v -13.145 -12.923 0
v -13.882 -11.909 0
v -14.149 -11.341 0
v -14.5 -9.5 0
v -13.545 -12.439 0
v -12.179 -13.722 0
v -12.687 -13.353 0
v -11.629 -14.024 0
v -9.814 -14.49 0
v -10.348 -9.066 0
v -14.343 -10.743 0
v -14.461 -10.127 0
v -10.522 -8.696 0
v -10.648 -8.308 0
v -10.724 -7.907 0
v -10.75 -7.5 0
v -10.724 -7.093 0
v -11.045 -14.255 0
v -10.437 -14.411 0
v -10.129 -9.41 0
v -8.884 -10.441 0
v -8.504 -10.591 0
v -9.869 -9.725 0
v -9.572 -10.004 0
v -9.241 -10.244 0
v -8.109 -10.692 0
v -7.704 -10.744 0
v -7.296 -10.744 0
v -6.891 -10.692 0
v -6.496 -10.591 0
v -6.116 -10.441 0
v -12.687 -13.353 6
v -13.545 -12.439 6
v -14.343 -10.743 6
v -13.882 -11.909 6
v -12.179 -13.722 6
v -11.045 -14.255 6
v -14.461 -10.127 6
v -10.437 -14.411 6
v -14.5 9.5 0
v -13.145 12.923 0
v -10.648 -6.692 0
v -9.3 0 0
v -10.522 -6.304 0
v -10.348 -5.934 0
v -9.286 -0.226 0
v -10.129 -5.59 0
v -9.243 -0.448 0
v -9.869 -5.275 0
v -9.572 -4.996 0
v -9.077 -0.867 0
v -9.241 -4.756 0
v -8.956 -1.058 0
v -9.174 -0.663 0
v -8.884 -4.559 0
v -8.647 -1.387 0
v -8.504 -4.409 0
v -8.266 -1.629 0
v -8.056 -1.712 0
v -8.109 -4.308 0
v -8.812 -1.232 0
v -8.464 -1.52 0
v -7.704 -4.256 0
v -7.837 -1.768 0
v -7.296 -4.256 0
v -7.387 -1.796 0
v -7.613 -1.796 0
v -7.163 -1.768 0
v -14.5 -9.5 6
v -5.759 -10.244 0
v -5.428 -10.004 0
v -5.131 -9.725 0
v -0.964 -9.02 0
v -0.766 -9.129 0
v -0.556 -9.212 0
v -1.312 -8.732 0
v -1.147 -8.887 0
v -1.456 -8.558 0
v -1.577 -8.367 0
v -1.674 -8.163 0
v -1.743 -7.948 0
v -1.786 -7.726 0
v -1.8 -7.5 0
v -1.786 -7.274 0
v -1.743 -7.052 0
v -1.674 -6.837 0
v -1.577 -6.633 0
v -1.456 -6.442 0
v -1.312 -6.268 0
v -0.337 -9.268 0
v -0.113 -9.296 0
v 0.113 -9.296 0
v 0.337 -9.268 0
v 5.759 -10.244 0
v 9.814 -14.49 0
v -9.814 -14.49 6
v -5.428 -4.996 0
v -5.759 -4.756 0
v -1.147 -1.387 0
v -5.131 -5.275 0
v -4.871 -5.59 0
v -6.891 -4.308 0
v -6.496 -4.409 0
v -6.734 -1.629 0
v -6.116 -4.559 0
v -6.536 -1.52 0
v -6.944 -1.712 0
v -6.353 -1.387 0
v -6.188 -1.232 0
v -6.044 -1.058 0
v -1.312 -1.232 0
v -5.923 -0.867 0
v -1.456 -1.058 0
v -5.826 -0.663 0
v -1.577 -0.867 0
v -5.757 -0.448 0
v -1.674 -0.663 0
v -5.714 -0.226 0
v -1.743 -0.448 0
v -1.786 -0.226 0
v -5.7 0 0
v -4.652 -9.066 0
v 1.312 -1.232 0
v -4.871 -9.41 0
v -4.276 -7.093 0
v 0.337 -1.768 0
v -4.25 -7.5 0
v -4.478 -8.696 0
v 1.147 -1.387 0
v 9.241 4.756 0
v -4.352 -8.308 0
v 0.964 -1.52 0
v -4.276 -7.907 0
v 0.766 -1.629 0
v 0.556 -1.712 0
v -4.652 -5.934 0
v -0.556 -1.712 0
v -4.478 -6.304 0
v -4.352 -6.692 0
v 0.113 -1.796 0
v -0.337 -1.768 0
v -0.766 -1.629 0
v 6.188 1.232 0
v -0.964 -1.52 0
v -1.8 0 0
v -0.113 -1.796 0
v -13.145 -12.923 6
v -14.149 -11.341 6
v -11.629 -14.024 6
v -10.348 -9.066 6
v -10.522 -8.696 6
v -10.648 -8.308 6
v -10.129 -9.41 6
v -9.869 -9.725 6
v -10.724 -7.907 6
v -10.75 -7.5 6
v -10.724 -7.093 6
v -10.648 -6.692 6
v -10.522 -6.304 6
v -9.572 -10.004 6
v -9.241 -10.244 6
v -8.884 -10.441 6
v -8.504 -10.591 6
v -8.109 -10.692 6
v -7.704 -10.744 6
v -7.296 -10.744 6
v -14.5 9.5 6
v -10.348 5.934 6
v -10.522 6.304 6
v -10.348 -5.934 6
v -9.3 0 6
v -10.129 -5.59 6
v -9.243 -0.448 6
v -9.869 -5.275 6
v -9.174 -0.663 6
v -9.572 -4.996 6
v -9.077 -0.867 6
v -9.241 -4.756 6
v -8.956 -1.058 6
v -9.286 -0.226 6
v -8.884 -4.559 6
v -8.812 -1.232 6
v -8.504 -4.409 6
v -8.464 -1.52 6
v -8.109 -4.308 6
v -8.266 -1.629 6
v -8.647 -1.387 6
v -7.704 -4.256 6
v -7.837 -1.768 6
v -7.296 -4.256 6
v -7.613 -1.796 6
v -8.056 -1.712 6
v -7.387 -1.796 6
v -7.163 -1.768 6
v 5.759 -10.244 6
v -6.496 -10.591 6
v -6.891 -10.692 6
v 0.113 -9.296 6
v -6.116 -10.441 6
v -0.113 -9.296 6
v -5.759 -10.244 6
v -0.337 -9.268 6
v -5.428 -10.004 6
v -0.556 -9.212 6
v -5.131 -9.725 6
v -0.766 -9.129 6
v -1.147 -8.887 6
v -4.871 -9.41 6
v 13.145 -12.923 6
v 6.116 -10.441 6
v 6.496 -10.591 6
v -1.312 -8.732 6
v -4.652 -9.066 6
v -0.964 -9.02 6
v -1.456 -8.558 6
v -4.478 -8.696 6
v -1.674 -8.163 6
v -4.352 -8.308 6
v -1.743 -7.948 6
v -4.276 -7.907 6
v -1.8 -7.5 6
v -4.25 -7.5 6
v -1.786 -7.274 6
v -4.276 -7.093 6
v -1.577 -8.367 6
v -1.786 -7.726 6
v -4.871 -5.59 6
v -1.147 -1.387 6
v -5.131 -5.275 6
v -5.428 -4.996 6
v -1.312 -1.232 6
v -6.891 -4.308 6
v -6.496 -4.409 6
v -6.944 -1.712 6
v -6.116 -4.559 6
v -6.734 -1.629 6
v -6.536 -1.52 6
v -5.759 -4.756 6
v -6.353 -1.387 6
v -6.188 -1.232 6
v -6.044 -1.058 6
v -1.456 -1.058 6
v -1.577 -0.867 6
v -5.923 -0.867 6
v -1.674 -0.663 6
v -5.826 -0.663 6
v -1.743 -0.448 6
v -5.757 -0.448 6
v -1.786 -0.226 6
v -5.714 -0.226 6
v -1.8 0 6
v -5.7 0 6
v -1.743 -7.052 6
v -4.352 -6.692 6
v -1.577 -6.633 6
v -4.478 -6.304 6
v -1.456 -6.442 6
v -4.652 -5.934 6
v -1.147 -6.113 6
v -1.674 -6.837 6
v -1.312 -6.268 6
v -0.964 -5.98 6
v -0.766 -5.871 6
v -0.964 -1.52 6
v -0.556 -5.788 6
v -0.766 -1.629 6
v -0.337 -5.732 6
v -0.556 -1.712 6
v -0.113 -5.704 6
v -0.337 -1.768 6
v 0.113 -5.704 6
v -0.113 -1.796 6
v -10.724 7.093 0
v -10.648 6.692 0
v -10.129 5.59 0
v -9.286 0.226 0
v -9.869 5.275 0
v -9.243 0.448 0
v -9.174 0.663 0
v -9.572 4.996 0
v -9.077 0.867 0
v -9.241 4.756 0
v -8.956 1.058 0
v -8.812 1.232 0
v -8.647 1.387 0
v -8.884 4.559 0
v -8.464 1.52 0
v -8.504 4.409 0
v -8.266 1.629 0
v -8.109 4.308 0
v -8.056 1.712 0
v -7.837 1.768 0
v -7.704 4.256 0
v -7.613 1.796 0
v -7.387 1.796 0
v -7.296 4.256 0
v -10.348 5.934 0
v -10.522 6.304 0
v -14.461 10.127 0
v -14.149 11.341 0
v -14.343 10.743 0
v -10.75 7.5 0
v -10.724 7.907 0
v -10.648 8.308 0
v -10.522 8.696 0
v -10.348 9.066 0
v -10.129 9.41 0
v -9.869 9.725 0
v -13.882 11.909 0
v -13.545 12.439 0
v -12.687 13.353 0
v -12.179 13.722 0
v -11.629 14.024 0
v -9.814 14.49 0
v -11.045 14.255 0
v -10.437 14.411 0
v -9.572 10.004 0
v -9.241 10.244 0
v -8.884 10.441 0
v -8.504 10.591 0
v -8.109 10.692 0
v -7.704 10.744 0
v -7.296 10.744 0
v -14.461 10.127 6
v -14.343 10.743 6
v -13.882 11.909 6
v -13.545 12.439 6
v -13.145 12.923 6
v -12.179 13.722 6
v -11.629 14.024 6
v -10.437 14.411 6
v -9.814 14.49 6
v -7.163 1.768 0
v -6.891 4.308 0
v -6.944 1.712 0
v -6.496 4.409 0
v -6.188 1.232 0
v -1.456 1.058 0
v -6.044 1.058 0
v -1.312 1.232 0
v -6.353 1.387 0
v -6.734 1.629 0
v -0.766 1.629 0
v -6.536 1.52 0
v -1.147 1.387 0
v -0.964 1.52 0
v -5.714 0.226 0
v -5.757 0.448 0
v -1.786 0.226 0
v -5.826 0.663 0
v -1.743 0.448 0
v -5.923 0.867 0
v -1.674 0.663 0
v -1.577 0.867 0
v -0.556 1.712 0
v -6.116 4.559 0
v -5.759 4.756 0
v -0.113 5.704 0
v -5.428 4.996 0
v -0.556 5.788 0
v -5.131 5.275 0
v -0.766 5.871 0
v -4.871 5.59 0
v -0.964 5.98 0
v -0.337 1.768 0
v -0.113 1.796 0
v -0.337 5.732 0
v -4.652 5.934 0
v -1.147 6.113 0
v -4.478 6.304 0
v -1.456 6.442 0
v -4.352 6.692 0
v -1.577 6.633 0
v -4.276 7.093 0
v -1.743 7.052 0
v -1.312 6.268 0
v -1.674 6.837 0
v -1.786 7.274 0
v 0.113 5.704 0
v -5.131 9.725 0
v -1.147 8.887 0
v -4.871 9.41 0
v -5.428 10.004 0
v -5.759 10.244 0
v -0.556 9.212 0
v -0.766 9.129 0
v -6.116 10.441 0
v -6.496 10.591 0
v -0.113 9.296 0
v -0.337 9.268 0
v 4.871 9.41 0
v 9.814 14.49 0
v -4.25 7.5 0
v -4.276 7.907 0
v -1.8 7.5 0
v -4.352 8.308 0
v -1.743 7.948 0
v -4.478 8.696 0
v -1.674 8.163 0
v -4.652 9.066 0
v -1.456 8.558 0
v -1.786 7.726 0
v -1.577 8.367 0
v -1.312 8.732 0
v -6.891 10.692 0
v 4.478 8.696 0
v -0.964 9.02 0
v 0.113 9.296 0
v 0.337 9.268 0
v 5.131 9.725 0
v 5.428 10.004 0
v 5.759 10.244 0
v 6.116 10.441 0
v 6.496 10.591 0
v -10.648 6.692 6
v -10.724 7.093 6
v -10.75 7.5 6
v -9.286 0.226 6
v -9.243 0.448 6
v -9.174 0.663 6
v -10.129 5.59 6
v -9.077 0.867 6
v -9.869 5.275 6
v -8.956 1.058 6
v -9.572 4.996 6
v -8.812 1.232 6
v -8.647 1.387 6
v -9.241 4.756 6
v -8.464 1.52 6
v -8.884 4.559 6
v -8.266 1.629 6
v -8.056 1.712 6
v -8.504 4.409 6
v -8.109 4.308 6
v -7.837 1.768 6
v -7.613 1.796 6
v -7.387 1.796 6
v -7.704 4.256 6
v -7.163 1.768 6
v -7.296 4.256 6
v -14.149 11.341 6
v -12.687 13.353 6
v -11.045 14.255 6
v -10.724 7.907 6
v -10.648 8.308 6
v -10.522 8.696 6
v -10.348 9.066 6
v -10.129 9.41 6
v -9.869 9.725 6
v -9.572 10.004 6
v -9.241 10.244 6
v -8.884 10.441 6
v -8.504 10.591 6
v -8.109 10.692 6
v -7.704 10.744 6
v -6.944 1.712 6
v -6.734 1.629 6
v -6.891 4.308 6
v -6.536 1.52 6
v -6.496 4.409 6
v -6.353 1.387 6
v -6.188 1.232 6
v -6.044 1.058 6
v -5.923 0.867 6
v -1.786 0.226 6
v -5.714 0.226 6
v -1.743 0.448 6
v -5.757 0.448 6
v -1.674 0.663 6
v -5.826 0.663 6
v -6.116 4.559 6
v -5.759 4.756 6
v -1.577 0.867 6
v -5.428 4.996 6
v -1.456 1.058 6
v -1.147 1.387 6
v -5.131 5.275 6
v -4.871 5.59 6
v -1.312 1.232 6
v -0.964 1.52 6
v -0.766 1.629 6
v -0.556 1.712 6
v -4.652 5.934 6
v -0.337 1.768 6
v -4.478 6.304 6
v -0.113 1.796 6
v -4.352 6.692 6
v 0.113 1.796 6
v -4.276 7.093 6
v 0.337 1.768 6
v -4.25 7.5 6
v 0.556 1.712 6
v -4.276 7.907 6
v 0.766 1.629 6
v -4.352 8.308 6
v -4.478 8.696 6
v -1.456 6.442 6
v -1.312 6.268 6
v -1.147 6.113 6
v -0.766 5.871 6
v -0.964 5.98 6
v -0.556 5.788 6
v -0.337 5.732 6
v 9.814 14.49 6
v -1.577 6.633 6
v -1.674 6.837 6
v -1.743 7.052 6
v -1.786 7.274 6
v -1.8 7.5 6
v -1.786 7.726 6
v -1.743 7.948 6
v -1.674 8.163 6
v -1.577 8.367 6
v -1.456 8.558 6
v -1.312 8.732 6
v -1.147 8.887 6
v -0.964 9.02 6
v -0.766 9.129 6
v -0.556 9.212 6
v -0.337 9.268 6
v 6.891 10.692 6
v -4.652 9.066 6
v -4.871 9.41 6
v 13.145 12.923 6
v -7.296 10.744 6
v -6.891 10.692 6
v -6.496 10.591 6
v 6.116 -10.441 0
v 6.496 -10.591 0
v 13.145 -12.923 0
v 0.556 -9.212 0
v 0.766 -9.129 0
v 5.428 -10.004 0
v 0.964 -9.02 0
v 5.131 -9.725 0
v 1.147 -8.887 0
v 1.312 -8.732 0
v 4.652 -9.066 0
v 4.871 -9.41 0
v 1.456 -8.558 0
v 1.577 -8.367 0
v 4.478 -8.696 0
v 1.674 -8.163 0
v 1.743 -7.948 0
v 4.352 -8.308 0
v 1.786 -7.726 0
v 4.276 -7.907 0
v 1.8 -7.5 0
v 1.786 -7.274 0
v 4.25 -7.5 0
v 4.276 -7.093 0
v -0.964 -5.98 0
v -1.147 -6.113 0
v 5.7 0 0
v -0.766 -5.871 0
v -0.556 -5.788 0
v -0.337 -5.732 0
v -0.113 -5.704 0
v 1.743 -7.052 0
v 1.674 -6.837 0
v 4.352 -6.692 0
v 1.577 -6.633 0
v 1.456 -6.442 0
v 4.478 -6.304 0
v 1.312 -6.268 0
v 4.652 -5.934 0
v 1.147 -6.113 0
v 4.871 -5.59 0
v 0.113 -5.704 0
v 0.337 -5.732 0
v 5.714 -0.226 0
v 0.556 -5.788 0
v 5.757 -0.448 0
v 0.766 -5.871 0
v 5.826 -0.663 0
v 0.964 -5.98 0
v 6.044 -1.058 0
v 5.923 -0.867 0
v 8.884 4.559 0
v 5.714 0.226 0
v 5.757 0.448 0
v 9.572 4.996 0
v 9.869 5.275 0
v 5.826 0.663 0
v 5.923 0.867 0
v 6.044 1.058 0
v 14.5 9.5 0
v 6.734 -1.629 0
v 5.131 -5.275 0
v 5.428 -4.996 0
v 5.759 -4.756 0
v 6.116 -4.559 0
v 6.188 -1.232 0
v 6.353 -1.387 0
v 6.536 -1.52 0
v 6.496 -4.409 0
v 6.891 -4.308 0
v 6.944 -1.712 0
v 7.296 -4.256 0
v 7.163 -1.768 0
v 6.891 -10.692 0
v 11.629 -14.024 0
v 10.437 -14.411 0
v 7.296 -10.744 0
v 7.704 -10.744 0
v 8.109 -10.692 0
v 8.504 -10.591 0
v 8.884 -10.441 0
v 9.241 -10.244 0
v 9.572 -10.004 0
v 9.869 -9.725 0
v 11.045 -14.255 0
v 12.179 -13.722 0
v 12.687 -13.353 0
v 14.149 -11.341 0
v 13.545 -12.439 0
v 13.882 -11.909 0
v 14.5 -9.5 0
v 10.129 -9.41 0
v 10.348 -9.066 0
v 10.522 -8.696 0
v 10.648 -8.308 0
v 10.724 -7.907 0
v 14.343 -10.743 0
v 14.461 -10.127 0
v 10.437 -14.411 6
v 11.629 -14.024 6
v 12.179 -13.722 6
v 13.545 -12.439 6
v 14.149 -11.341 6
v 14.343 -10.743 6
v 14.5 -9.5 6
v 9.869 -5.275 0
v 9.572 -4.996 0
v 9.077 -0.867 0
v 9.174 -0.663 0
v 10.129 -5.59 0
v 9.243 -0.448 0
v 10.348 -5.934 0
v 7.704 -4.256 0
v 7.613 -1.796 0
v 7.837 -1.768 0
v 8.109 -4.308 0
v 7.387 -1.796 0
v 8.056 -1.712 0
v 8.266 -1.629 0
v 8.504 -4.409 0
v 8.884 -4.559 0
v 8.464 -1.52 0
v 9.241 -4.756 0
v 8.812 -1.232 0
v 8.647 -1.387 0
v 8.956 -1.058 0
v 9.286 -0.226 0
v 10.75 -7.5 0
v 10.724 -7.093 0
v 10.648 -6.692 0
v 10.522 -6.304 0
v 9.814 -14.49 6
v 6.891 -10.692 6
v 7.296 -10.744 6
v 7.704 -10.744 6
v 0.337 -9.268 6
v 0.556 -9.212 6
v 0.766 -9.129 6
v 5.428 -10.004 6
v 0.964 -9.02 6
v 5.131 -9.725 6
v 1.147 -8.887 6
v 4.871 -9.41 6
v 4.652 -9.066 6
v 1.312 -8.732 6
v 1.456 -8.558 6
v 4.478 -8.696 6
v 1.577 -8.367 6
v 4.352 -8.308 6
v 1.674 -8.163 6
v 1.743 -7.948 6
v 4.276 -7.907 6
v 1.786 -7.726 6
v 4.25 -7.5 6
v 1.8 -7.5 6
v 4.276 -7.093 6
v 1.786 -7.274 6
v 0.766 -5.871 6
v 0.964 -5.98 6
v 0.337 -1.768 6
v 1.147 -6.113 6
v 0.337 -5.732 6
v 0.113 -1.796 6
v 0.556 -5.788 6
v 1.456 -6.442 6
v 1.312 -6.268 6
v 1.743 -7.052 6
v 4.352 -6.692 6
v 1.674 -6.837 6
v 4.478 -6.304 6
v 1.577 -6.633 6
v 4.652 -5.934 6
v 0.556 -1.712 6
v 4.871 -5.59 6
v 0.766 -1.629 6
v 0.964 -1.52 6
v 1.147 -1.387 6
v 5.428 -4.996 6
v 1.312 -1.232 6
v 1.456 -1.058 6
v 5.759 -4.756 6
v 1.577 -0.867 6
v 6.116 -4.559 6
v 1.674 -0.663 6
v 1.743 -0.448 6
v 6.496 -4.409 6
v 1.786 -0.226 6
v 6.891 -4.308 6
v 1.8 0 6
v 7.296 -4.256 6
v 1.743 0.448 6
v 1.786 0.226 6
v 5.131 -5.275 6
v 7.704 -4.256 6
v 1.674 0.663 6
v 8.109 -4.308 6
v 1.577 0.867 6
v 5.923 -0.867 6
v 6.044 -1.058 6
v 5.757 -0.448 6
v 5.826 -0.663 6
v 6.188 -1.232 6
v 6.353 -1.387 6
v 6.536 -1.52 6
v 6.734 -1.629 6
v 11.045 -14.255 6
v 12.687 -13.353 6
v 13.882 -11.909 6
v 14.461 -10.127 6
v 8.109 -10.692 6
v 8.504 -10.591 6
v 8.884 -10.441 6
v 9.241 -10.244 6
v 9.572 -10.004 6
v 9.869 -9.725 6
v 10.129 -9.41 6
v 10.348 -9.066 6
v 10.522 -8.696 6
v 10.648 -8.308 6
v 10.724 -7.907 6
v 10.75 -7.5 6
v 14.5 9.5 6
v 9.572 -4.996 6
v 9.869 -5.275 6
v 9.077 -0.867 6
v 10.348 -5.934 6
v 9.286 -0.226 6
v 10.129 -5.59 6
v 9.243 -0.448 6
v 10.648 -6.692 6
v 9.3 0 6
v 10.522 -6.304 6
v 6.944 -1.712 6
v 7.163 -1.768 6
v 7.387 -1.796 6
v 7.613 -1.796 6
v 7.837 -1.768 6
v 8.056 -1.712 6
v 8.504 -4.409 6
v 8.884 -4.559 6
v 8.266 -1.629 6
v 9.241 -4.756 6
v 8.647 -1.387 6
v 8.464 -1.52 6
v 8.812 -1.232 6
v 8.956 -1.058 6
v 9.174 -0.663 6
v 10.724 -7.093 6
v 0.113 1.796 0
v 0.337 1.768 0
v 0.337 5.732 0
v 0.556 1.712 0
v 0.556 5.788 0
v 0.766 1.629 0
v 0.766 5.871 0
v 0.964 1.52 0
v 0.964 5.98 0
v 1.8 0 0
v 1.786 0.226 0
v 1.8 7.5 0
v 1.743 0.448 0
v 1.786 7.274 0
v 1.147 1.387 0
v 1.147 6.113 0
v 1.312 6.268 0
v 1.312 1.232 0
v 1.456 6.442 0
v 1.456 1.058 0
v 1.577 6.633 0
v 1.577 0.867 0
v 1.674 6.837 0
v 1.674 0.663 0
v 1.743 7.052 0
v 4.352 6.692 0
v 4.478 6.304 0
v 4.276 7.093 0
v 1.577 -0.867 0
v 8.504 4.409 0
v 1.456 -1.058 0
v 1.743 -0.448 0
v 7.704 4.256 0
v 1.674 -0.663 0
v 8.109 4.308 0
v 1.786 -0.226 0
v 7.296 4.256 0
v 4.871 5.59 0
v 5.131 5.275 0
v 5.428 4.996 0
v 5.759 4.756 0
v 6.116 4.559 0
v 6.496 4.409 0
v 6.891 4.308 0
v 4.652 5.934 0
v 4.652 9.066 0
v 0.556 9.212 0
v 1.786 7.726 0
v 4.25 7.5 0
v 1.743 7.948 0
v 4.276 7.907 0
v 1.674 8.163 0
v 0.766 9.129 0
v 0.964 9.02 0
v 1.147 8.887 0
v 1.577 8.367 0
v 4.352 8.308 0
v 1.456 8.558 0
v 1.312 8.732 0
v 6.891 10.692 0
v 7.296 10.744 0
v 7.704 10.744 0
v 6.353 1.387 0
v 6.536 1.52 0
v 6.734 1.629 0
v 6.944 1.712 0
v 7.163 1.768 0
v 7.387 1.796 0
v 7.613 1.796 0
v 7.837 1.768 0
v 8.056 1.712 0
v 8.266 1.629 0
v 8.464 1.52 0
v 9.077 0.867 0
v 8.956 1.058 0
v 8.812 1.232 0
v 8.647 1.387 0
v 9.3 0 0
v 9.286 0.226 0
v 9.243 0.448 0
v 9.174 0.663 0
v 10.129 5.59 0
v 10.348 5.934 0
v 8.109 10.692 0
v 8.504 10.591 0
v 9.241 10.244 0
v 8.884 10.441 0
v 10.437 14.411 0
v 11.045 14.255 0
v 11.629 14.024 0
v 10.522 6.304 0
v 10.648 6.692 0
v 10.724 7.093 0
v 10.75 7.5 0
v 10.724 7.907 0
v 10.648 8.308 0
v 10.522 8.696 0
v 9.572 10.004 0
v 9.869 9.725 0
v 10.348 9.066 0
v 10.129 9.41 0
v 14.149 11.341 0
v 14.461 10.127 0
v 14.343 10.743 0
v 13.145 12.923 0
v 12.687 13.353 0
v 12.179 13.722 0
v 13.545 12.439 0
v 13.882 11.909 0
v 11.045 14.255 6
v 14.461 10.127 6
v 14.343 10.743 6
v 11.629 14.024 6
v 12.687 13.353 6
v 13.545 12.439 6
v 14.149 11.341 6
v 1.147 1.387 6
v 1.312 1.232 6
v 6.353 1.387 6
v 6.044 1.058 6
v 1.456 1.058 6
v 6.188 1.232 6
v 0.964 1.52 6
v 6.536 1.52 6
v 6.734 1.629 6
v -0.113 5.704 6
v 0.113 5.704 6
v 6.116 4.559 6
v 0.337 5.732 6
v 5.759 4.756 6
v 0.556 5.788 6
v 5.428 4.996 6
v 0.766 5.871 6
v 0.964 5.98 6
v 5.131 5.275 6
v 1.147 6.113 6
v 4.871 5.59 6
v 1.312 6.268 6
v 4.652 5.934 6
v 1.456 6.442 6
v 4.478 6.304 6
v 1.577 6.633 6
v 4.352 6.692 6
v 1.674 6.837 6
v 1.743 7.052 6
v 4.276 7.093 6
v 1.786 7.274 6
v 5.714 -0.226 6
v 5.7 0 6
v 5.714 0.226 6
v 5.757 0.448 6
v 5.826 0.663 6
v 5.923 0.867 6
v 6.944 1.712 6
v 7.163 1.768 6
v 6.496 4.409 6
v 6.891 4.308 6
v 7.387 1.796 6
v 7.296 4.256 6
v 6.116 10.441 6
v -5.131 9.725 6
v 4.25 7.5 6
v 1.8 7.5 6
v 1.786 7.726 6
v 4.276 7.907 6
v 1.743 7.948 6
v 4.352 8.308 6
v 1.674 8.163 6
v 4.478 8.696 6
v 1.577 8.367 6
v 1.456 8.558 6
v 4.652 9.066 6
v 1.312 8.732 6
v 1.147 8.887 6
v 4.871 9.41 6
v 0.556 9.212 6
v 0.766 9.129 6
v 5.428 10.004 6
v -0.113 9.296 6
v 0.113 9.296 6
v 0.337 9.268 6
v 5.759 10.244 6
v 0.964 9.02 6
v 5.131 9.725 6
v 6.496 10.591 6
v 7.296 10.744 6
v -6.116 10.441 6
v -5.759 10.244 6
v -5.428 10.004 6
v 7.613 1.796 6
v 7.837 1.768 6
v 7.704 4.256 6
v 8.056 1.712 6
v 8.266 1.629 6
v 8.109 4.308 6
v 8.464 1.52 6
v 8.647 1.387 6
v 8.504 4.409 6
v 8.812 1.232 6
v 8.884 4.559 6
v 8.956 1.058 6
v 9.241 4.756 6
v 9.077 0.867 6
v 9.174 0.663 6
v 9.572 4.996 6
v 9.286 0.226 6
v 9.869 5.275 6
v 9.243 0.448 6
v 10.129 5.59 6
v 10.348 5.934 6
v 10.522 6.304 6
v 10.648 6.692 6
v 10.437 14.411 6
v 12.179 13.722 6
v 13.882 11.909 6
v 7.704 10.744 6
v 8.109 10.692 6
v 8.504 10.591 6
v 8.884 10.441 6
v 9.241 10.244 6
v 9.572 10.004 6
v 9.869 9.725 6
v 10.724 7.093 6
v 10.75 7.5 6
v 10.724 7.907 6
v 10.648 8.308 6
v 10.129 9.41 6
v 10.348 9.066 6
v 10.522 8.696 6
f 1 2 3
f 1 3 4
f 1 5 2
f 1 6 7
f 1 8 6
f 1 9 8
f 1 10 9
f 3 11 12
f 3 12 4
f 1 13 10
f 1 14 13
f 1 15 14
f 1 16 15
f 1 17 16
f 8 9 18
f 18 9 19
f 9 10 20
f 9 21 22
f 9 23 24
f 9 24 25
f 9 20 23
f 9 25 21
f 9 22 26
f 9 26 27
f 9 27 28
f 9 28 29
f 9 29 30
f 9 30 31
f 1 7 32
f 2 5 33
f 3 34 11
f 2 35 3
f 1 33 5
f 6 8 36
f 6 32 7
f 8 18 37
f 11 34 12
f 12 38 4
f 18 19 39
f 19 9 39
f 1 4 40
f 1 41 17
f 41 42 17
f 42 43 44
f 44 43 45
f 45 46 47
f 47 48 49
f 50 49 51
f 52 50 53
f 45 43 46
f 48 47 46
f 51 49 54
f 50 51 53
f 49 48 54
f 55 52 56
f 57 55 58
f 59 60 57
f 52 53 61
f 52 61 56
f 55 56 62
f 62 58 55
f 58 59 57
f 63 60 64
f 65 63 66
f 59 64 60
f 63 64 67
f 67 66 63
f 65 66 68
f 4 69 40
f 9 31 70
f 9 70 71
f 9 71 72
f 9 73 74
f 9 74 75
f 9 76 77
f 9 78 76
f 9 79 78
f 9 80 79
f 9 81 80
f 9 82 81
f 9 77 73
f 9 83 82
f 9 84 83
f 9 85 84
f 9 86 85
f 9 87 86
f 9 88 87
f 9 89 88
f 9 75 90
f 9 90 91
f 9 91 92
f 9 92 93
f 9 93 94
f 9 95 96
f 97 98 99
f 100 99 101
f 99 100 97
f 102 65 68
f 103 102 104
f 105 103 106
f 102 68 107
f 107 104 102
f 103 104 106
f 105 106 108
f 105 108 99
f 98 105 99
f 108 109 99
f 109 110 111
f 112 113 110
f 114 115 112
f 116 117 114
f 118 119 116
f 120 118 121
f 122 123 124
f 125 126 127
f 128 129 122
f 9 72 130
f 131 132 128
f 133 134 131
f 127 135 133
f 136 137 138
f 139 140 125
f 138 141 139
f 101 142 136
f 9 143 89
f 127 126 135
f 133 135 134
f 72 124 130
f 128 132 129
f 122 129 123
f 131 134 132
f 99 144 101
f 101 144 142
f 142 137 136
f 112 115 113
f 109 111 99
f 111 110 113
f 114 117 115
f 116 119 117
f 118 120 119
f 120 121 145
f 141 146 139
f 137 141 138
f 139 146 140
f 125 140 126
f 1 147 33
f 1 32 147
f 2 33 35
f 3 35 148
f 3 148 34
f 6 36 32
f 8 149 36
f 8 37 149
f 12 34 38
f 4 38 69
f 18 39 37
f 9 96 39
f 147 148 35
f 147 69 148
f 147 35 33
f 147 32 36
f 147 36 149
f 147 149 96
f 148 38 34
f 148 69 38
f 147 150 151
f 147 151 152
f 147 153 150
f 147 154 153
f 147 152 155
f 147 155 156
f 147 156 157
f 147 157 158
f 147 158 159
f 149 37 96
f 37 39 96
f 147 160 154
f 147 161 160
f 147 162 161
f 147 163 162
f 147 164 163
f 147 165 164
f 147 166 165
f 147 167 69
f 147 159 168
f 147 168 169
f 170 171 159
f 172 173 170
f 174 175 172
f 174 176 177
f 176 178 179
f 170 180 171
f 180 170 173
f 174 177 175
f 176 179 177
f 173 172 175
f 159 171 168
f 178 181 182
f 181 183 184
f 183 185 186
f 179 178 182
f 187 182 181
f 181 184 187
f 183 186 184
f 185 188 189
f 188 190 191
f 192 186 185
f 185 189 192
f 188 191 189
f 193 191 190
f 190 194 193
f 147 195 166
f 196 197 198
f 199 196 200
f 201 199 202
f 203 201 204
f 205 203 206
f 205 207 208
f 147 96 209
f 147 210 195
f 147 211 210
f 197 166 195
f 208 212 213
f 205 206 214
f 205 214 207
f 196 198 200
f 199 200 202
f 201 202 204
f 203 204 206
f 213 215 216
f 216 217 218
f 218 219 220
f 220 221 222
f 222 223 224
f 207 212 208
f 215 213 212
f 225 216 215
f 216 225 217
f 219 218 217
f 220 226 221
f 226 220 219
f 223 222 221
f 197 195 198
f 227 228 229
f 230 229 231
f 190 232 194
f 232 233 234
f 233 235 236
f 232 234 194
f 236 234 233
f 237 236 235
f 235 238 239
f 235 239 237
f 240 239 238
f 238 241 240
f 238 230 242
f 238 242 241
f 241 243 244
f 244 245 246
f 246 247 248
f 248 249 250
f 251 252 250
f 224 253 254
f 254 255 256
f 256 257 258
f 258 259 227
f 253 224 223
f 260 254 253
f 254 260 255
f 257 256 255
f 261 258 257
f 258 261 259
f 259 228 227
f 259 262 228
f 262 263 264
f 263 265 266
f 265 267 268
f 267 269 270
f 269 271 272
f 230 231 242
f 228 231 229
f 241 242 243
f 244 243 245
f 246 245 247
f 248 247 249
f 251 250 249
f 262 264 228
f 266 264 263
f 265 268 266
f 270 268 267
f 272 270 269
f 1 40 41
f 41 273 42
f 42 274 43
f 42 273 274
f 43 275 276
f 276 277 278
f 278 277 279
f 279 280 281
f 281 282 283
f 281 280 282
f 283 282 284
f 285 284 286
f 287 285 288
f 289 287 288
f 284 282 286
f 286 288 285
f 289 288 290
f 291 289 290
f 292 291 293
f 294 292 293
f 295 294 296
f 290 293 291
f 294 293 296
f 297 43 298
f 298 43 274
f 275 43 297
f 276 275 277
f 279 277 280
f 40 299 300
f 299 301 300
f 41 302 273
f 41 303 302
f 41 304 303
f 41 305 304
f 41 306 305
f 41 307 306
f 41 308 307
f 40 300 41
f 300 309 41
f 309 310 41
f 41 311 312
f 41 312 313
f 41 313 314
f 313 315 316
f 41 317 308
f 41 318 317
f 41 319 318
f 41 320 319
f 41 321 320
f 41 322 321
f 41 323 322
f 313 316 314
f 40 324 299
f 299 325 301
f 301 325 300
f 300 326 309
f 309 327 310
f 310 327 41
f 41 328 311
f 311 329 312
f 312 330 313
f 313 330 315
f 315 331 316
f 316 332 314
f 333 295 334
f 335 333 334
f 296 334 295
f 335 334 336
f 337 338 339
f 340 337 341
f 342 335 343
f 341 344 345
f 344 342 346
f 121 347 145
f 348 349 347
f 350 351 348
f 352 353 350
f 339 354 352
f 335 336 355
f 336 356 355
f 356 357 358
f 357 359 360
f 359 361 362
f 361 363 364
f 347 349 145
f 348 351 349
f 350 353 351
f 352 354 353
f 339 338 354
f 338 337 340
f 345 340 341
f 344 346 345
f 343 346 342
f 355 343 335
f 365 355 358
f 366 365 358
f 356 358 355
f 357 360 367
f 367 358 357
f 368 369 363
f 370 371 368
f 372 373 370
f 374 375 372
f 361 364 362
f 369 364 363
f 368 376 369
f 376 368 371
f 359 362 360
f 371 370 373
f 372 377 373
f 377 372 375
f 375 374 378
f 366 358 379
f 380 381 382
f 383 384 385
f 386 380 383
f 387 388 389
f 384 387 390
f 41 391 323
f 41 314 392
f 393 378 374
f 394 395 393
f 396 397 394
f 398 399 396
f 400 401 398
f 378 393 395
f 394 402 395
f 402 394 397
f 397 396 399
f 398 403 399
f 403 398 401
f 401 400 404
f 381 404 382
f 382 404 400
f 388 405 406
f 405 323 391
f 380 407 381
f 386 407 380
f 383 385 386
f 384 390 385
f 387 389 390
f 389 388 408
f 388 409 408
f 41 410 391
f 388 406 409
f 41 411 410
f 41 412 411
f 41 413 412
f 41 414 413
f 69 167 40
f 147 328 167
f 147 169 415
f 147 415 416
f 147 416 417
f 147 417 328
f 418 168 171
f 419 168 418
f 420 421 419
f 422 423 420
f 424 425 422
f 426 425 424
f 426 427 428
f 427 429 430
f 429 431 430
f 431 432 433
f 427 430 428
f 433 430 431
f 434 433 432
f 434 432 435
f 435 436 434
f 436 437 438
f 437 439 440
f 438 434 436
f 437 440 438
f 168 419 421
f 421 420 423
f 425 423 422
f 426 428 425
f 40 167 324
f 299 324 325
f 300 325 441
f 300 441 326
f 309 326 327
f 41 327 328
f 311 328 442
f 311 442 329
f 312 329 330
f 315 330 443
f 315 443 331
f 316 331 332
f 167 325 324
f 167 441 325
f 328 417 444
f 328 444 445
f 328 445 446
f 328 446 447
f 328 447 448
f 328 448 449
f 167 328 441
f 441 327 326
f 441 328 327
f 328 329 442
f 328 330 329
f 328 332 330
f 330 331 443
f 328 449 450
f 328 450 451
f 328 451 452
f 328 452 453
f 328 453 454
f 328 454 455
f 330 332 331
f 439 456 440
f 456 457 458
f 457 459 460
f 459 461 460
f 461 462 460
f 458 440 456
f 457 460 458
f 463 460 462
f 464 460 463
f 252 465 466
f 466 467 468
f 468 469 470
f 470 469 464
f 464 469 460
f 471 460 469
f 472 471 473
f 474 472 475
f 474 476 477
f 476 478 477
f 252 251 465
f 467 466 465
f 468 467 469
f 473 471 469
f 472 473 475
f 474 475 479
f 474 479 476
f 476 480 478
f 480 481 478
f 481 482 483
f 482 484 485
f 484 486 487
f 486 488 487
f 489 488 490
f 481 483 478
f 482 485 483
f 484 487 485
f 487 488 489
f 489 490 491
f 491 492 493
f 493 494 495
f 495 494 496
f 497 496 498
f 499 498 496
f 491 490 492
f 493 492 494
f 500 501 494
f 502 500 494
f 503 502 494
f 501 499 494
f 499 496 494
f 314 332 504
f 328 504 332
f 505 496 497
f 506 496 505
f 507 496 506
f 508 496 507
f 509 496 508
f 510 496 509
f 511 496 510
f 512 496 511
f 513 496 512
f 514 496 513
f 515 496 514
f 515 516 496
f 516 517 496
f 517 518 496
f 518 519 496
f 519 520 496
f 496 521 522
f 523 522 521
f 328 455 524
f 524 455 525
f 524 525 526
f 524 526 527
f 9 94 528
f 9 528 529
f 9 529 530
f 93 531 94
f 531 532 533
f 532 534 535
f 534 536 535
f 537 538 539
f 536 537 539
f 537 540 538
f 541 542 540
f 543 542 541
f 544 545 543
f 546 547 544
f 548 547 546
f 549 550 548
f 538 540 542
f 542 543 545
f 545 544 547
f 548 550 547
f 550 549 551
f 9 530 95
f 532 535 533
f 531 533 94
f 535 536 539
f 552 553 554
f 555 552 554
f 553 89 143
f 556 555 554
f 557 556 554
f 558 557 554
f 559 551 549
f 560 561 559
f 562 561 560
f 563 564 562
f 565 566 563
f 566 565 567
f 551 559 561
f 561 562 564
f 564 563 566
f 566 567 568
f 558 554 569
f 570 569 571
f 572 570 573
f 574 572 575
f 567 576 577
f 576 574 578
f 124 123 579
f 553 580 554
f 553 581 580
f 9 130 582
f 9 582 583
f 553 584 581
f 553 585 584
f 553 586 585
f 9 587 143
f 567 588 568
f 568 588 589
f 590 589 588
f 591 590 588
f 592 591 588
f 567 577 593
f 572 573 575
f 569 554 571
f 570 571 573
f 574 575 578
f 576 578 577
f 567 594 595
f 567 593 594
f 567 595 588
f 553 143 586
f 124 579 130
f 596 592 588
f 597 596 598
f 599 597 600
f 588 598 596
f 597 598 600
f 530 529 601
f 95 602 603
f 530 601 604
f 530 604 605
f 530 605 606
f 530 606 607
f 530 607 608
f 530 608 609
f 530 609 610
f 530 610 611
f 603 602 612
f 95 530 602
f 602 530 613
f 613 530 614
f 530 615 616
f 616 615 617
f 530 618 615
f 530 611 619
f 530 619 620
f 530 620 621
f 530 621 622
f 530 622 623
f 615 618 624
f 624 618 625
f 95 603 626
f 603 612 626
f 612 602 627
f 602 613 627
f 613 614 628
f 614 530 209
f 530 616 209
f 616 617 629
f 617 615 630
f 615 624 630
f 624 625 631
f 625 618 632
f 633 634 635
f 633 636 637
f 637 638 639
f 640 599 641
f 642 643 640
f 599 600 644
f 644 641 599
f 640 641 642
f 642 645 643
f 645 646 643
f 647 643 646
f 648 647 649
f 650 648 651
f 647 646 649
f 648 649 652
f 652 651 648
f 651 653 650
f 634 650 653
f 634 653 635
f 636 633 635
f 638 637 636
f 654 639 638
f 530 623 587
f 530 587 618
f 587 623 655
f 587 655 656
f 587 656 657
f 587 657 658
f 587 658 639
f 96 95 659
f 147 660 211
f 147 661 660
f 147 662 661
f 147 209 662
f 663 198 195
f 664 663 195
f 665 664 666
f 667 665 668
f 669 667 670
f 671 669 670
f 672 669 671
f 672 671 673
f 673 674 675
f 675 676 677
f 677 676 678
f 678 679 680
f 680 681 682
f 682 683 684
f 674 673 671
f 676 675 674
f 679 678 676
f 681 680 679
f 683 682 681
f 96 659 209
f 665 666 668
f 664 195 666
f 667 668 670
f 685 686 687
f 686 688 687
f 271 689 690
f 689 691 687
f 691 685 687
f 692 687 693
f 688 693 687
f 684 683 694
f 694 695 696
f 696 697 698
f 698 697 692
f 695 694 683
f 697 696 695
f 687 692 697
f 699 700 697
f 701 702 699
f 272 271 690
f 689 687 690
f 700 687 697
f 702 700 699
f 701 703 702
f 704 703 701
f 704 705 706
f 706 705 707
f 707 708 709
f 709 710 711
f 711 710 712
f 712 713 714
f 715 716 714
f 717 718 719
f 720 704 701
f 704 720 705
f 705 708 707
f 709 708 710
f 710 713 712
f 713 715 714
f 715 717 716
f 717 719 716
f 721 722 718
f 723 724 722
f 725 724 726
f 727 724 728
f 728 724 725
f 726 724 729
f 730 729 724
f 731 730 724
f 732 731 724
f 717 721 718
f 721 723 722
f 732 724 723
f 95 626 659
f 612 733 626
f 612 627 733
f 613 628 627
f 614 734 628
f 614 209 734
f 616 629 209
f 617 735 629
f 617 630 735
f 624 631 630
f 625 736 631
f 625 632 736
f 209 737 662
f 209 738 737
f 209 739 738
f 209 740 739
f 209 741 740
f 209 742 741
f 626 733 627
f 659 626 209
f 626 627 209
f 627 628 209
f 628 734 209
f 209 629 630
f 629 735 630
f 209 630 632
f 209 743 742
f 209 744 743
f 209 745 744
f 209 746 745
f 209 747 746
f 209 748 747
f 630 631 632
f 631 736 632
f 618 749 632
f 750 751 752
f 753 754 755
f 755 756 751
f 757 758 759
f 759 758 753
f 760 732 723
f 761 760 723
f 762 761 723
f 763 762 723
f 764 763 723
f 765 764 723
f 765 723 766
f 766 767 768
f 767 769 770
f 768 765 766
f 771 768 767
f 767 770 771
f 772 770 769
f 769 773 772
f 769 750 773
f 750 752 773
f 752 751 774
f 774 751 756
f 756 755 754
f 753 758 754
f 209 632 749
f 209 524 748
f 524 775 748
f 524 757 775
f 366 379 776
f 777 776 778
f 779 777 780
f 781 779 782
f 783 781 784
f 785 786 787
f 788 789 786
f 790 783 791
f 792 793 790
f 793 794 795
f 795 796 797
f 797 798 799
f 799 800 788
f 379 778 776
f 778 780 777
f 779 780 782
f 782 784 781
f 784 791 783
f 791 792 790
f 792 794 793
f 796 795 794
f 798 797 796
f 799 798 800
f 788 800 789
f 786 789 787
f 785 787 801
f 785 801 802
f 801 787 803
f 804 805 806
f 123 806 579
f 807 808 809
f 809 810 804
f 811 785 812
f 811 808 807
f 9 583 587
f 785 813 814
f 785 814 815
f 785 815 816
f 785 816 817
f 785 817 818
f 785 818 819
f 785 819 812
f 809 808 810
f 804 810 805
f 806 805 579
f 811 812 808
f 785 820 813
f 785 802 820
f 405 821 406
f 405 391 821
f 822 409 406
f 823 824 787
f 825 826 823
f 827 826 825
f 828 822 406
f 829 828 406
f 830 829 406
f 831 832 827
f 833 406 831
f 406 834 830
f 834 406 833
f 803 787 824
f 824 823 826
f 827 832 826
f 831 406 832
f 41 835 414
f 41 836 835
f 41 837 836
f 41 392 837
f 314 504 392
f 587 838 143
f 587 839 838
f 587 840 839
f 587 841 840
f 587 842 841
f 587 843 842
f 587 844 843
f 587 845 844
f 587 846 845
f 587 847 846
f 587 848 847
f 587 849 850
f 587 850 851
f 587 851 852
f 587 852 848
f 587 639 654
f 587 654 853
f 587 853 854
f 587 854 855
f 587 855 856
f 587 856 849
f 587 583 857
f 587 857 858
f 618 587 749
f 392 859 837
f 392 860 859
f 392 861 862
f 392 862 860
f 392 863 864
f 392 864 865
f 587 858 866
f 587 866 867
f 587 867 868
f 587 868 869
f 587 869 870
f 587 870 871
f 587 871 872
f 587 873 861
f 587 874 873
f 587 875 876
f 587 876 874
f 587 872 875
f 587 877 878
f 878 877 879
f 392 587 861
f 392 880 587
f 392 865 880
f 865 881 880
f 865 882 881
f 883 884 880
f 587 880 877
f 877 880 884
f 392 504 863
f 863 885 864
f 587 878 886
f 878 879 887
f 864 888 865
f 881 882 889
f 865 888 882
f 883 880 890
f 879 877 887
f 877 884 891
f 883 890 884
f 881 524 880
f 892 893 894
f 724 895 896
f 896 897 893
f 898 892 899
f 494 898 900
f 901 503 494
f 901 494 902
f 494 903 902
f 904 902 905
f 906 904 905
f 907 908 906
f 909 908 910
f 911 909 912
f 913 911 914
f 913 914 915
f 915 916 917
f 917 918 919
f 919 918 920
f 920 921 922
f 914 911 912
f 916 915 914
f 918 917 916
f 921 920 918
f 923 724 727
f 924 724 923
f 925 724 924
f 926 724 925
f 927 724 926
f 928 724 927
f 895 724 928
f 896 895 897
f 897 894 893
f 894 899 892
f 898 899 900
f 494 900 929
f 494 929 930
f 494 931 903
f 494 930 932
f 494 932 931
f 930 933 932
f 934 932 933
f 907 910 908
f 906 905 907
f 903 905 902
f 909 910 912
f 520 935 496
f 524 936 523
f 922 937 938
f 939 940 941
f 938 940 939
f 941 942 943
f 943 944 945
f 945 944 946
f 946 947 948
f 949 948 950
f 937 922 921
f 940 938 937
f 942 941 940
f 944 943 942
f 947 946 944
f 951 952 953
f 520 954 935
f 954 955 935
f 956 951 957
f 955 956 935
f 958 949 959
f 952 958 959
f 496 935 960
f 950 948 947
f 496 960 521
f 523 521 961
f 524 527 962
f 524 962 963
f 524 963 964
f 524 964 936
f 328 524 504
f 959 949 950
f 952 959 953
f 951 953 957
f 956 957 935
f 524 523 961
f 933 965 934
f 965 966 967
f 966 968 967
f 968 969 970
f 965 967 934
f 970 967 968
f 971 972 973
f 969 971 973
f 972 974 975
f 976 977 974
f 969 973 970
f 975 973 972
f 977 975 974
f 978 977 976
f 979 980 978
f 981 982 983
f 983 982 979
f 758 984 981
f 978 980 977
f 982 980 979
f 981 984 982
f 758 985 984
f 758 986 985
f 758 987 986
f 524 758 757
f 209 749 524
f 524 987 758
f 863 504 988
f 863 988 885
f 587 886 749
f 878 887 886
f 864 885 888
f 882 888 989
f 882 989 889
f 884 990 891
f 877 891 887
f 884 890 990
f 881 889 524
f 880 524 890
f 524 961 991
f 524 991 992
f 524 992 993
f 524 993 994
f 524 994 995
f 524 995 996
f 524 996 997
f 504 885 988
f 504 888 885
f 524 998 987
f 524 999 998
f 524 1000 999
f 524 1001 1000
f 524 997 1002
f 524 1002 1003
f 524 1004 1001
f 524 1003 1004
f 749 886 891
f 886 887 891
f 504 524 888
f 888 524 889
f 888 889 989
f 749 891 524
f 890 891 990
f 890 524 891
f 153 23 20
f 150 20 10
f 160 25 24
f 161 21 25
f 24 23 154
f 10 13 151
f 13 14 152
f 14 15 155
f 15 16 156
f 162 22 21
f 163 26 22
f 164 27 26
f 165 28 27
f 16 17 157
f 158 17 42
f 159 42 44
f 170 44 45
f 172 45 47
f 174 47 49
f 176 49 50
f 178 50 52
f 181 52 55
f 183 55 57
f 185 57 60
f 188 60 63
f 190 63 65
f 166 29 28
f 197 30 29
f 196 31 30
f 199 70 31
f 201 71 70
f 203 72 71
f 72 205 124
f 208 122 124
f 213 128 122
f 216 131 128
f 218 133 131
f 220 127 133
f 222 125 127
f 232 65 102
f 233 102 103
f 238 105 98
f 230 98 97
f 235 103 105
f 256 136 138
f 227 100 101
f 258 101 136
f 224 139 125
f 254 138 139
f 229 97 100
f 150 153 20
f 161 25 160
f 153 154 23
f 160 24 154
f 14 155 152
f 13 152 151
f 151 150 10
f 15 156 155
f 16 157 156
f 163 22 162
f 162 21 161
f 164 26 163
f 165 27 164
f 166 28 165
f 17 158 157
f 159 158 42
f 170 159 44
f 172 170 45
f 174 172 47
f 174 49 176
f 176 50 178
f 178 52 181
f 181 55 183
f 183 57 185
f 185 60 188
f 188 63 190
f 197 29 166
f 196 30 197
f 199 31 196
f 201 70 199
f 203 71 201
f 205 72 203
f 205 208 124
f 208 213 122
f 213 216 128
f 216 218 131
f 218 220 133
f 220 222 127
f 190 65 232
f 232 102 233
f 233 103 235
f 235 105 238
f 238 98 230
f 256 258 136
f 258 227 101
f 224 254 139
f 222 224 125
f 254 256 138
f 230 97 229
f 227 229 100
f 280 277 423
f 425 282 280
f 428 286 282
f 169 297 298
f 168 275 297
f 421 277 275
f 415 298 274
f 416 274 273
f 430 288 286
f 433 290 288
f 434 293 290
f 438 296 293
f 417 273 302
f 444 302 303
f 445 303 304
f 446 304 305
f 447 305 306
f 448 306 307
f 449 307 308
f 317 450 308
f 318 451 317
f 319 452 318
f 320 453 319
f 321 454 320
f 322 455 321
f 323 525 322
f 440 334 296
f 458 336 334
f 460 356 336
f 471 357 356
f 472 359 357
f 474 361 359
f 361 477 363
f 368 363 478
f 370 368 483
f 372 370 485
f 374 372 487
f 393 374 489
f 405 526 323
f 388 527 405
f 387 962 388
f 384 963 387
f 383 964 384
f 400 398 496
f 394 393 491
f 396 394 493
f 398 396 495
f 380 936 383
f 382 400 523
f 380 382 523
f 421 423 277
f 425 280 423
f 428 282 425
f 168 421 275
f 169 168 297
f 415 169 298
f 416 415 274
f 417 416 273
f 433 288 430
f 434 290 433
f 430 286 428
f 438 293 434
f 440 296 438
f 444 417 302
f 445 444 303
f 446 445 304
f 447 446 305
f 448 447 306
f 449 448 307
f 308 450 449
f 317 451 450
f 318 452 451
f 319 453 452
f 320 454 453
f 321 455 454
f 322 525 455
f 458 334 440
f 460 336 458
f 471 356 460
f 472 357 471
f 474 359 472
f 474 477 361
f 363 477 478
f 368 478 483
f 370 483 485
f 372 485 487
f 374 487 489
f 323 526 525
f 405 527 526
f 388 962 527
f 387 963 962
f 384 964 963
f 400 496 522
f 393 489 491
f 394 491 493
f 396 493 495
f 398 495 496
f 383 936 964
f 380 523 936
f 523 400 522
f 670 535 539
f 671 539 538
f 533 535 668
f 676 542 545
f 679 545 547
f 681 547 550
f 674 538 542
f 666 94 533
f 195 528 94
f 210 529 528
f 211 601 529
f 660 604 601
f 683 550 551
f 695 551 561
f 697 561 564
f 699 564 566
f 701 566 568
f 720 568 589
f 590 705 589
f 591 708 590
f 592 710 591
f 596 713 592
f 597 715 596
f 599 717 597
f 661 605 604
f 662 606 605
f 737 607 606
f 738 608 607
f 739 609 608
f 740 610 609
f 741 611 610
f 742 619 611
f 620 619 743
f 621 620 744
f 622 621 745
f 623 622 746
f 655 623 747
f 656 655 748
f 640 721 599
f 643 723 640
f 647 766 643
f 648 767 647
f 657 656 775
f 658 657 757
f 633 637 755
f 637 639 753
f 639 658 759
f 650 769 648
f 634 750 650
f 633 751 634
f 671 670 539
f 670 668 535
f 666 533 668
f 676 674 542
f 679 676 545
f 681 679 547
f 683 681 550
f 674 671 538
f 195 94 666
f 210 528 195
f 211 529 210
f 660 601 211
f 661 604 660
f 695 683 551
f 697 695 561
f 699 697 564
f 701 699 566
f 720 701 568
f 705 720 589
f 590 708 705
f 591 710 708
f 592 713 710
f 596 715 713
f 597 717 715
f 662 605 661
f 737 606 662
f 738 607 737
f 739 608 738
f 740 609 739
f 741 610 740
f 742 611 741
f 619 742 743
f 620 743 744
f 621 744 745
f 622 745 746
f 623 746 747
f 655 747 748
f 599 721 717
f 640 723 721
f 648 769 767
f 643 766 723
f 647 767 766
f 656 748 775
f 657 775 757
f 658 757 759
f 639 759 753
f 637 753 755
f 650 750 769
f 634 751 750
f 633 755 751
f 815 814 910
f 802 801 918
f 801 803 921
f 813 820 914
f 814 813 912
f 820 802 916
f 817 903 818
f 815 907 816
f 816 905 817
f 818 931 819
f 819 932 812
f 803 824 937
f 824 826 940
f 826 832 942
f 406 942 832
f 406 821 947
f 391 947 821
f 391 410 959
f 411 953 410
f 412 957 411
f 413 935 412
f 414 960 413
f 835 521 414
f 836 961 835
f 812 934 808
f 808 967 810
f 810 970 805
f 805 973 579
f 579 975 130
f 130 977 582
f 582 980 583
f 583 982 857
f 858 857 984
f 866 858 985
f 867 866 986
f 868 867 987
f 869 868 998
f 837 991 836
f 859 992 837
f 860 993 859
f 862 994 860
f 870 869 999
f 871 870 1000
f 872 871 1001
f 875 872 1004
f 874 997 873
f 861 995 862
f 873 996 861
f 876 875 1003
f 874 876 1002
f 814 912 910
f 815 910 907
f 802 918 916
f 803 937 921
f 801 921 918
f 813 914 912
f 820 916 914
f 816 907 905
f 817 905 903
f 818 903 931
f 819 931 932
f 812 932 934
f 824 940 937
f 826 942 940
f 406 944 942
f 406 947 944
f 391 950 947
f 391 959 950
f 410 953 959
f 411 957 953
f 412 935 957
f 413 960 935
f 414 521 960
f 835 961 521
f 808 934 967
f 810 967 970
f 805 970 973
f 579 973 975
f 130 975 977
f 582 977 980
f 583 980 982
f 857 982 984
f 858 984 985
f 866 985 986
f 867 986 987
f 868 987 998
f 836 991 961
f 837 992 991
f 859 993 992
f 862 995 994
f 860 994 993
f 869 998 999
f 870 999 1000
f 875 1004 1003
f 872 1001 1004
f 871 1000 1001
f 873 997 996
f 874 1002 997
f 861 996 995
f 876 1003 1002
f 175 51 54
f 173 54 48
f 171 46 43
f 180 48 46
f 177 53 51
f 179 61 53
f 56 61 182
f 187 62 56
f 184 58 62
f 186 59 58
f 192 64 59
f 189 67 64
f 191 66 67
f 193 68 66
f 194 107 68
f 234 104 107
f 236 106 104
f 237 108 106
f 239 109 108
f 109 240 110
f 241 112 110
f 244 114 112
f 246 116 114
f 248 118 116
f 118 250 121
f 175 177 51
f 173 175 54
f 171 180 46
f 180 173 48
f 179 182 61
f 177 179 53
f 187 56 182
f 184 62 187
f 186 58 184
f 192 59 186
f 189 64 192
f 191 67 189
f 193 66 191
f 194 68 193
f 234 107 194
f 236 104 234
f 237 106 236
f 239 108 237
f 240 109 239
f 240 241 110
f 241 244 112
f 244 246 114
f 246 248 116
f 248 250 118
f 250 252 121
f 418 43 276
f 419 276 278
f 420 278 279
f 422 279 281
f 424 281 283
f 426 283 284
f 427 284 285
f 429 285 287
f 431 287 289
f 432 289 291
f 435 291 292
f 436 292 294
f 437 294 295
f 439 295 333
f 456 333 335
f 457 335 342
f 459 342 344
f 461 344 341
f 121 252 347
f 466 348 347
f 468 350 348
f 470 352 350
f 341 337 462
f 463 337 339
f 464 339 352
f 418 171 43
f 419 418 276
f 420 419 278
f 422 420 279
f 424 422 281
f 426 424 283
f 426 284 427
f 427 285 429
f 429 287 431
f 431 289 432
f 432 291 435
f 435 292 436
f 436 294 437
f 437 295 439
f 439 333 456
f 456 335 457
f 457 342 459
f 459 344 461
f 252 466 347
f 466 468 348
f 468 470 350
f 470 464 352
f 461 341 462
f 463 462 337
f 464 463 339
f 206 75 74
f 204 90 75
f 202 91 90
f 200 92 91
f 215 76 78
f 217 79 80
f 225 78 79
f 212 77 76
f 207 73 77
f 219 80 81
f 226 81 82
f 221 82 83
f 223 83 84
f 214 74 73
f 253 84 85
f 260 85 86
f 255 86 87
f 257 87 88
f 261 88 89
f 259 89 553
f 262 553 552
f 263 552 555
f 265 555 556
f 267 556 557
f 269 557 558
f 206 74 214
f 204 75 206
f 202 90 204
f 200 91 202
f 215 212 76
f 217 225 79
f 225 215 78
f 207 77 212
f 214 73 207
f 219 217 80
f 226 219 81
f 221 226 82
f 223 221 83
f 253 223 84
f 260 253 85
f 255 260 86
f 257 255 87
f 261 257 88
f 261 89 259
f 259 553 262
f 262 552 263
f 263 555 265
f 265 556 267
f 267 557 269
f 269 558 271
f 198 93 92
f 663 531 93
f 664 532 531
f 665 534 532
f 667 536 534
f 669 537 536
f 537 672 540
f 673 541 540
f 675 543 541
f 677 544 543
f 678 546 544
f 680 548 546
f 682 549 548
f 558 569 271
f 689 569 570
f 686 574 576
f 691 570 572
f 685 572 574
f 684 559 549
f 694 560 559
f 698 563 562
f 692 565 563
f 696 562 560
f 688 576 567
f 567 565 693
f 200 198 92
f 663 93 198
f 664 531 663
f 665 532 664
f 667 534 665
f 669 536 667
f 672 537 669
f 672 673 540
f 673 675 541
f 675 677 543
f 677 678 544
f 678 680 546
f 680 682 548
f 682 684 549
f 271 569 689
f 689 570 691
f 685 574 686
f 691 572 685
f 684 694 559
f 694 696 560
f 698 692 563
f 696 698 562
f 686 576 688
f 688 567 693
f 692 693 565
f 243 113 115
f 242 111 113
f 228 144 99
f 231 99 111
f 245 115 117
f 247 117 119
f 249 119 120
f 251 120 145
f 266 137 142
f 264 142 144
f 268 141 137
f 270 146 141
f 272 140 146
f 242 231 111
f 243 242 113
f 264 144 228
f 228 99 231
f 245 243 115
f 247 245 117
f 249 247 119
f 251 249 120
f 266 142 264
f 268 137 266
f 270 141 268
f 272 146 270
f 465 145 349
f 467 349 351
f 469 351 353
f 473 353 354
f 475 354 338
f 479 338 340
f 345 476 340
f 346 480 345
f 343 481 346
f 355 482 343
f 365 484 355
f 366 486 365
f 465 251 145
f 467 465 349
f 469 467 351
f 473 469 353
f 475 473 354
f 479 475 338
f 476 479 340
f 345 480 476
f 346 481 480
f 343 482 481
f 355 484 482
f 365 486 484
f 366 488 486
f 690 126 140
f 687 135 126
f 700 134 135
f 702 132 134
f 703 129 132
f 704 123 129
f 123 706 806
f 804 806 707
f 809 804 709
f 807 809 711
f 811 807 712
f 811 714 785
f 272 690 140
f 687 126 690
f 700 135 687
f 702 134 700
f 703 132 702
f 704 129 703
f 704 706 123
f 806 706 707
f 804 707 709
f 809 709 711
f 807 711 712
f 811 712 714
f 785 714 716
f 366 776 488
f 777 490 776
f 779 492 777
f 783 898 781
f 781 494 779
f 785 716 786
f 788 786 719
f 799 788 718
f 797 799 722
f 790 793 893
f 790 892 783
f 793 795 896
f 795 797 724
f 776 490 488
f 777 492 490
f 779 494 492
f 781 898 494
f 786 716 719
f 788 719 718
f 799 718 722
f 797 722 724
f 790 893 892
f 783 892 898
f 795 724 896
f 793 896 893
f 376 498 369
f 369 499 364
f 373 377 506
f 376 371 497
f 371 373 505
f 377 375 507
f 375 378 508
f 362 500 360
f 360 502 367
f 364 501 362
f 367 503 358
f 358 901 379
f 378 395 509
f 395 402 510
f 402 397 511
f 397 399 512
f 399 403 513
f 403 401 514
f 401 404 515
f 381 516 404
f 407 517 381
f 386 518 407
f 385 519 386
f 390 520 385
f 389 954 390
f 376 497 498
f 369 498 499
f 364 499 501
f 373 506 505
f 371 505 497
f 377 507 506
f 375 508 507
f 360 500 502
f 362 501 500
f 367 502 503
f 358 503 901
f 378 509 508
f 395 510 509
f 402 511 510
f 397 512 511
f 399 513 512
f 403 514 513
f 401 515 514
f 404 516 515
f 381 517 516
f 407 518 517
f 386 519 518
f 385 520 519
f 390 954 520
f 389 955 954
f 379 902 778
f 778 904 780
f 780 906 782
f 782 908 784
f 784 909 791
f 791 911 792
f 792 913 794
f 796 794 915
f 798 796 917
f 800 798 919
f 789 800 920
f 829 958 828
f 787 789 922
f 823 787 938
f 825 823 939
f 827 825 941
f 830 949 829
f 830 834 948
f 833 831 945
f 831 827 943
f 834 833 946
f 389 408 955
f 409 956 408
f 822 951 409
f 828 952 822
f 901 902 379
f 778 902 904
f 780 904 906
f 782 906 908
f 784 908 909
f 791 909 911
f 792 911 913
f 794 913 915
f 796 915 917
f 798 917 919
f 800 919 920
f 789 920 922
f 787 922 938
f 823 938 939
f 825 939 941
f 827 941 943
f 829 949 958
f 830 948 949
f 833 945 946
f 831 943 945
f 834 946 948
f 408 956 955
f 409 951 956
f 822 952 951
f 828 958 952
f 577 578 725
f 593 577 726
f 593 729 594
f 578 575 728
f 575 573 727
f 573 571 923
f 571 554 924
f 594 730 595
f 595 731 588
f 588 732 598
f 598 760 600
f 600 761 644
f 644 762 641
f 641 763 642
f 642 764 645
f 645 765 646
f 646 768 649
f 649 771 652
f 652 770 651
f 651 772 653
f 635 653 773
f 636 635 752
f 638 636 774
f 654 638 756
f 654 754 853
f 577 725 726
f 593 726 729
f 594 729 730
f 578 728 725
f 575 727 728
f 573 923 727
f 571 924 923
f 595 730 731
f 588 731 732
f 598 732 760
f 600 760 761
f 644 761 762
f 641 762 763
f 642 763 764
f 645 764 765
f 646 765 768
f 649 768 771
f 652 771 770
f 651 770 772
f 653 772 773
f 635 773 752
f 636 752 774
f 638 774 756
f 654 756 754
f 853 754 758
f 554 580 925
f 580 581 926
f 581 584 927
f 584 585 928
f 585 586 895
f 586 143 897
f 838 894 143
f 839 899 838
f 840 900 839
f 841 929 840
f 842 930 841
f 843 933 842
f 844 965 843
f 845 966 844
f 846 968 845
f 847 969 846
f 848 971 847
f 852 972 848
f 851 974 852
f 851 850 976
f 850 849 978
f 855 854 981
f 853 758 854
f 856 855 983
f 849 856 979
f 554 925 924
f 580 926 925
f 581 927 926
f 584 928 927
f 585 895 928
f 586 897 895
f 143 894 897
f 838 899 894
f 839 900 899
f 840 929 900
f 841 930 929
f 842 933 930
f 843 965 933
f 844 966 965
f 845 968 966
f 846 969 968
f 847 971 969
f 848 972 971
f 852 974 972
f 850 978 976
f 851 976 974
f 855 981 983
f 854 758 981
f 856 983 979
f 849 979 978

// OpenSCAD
$fn = 50;

difference() {
	union() {
		hull() {
			translate(v = [-9.5, 9.5, 0]) {
				cylinder(h = 6, r = 5);
			}
			translate(v = [9.5, 9.5, 0]) {
				cylinder(h = 6, r = 5);
			}
			translate(v = [-9.5, -9.5, 0]) {
				cylinder(h = 6, r = 5);
			}
			translate(v = [9.5, -9.5, 0]) {
				cylinder(h = 6, r = 5);
			}
		}
	}
	union() {
		translate(v = [-7.5, -7.5, 0]) {
			translate(v = [0, 0, -100]) {
				cylinder(h = 200, r = 3.25);
			}
		}
		translate(v = [-7.5, 7.5, 0]) {
			translate(v = [0, 0, -100]) {
				cylinder(h = 200, r = 3.25);
			}
		}
		translate(v = [7.5, -7.5, 0]) {
			translate(v = [0, 0, -100]) {
				cylinder(h = 200, r = 3.25);
			}
		}
		translate(v = [7.5, 7.5, 0]) {
			translate(v = [0, 0, -100]) {
				cylinder(h = 200, r = 3.25);
			}
		}
		translate(v = [-7.5, -7.5, 0]) {
			translate(v = [0, 0, -100]) {
				cylinder(h = 200, r = 1.8);
			}
		}
		translate(v = [-7.5, 0.0, 0]) {
			translate(v = [0, 0, -100]) {
				cylinder(h = 200, r = 1.8);
			}
		}
		translate(v = [-7.5, 7.5, 0]) {
			translate(v = [0, 0, -100]) {
				cylinder(h = 200, r = 1.8);
			}
		}
		translate(v = [0.0, -7.5, 0]) {
			translate(v = [0, 0, -100]) {
				cylinder(h = 200, r = 1.8);
			}
		}
		translate(v = [0, 0, -100]) {
			cylinder(h = 200, r = 1.8);
		}
		translate(v = [0.0, 7.5, 0]) {
			translate(v = [0, 0, -100]) {
				cylinder(h = 200, r = 1.8);
			}
		}
		translate(v = [7.5, -7.5, 0]) {
			translate(v = [0, 0, -100]) {
				cylinder(h = 200, r = 1.8);
			}
		}
		translate(v = [7.5, 0.0, 0]) {
			translate(v = [0, 0, -100]) {
				cylinder(h = 200, r = 1.8);
			}
		}
		translate(v = [7.5, 7.5, 0]) {
			translate(v = [0, 0, -100]) {
				cylinder(h = 200, r = 1.8);
			}
		}
	}
}
